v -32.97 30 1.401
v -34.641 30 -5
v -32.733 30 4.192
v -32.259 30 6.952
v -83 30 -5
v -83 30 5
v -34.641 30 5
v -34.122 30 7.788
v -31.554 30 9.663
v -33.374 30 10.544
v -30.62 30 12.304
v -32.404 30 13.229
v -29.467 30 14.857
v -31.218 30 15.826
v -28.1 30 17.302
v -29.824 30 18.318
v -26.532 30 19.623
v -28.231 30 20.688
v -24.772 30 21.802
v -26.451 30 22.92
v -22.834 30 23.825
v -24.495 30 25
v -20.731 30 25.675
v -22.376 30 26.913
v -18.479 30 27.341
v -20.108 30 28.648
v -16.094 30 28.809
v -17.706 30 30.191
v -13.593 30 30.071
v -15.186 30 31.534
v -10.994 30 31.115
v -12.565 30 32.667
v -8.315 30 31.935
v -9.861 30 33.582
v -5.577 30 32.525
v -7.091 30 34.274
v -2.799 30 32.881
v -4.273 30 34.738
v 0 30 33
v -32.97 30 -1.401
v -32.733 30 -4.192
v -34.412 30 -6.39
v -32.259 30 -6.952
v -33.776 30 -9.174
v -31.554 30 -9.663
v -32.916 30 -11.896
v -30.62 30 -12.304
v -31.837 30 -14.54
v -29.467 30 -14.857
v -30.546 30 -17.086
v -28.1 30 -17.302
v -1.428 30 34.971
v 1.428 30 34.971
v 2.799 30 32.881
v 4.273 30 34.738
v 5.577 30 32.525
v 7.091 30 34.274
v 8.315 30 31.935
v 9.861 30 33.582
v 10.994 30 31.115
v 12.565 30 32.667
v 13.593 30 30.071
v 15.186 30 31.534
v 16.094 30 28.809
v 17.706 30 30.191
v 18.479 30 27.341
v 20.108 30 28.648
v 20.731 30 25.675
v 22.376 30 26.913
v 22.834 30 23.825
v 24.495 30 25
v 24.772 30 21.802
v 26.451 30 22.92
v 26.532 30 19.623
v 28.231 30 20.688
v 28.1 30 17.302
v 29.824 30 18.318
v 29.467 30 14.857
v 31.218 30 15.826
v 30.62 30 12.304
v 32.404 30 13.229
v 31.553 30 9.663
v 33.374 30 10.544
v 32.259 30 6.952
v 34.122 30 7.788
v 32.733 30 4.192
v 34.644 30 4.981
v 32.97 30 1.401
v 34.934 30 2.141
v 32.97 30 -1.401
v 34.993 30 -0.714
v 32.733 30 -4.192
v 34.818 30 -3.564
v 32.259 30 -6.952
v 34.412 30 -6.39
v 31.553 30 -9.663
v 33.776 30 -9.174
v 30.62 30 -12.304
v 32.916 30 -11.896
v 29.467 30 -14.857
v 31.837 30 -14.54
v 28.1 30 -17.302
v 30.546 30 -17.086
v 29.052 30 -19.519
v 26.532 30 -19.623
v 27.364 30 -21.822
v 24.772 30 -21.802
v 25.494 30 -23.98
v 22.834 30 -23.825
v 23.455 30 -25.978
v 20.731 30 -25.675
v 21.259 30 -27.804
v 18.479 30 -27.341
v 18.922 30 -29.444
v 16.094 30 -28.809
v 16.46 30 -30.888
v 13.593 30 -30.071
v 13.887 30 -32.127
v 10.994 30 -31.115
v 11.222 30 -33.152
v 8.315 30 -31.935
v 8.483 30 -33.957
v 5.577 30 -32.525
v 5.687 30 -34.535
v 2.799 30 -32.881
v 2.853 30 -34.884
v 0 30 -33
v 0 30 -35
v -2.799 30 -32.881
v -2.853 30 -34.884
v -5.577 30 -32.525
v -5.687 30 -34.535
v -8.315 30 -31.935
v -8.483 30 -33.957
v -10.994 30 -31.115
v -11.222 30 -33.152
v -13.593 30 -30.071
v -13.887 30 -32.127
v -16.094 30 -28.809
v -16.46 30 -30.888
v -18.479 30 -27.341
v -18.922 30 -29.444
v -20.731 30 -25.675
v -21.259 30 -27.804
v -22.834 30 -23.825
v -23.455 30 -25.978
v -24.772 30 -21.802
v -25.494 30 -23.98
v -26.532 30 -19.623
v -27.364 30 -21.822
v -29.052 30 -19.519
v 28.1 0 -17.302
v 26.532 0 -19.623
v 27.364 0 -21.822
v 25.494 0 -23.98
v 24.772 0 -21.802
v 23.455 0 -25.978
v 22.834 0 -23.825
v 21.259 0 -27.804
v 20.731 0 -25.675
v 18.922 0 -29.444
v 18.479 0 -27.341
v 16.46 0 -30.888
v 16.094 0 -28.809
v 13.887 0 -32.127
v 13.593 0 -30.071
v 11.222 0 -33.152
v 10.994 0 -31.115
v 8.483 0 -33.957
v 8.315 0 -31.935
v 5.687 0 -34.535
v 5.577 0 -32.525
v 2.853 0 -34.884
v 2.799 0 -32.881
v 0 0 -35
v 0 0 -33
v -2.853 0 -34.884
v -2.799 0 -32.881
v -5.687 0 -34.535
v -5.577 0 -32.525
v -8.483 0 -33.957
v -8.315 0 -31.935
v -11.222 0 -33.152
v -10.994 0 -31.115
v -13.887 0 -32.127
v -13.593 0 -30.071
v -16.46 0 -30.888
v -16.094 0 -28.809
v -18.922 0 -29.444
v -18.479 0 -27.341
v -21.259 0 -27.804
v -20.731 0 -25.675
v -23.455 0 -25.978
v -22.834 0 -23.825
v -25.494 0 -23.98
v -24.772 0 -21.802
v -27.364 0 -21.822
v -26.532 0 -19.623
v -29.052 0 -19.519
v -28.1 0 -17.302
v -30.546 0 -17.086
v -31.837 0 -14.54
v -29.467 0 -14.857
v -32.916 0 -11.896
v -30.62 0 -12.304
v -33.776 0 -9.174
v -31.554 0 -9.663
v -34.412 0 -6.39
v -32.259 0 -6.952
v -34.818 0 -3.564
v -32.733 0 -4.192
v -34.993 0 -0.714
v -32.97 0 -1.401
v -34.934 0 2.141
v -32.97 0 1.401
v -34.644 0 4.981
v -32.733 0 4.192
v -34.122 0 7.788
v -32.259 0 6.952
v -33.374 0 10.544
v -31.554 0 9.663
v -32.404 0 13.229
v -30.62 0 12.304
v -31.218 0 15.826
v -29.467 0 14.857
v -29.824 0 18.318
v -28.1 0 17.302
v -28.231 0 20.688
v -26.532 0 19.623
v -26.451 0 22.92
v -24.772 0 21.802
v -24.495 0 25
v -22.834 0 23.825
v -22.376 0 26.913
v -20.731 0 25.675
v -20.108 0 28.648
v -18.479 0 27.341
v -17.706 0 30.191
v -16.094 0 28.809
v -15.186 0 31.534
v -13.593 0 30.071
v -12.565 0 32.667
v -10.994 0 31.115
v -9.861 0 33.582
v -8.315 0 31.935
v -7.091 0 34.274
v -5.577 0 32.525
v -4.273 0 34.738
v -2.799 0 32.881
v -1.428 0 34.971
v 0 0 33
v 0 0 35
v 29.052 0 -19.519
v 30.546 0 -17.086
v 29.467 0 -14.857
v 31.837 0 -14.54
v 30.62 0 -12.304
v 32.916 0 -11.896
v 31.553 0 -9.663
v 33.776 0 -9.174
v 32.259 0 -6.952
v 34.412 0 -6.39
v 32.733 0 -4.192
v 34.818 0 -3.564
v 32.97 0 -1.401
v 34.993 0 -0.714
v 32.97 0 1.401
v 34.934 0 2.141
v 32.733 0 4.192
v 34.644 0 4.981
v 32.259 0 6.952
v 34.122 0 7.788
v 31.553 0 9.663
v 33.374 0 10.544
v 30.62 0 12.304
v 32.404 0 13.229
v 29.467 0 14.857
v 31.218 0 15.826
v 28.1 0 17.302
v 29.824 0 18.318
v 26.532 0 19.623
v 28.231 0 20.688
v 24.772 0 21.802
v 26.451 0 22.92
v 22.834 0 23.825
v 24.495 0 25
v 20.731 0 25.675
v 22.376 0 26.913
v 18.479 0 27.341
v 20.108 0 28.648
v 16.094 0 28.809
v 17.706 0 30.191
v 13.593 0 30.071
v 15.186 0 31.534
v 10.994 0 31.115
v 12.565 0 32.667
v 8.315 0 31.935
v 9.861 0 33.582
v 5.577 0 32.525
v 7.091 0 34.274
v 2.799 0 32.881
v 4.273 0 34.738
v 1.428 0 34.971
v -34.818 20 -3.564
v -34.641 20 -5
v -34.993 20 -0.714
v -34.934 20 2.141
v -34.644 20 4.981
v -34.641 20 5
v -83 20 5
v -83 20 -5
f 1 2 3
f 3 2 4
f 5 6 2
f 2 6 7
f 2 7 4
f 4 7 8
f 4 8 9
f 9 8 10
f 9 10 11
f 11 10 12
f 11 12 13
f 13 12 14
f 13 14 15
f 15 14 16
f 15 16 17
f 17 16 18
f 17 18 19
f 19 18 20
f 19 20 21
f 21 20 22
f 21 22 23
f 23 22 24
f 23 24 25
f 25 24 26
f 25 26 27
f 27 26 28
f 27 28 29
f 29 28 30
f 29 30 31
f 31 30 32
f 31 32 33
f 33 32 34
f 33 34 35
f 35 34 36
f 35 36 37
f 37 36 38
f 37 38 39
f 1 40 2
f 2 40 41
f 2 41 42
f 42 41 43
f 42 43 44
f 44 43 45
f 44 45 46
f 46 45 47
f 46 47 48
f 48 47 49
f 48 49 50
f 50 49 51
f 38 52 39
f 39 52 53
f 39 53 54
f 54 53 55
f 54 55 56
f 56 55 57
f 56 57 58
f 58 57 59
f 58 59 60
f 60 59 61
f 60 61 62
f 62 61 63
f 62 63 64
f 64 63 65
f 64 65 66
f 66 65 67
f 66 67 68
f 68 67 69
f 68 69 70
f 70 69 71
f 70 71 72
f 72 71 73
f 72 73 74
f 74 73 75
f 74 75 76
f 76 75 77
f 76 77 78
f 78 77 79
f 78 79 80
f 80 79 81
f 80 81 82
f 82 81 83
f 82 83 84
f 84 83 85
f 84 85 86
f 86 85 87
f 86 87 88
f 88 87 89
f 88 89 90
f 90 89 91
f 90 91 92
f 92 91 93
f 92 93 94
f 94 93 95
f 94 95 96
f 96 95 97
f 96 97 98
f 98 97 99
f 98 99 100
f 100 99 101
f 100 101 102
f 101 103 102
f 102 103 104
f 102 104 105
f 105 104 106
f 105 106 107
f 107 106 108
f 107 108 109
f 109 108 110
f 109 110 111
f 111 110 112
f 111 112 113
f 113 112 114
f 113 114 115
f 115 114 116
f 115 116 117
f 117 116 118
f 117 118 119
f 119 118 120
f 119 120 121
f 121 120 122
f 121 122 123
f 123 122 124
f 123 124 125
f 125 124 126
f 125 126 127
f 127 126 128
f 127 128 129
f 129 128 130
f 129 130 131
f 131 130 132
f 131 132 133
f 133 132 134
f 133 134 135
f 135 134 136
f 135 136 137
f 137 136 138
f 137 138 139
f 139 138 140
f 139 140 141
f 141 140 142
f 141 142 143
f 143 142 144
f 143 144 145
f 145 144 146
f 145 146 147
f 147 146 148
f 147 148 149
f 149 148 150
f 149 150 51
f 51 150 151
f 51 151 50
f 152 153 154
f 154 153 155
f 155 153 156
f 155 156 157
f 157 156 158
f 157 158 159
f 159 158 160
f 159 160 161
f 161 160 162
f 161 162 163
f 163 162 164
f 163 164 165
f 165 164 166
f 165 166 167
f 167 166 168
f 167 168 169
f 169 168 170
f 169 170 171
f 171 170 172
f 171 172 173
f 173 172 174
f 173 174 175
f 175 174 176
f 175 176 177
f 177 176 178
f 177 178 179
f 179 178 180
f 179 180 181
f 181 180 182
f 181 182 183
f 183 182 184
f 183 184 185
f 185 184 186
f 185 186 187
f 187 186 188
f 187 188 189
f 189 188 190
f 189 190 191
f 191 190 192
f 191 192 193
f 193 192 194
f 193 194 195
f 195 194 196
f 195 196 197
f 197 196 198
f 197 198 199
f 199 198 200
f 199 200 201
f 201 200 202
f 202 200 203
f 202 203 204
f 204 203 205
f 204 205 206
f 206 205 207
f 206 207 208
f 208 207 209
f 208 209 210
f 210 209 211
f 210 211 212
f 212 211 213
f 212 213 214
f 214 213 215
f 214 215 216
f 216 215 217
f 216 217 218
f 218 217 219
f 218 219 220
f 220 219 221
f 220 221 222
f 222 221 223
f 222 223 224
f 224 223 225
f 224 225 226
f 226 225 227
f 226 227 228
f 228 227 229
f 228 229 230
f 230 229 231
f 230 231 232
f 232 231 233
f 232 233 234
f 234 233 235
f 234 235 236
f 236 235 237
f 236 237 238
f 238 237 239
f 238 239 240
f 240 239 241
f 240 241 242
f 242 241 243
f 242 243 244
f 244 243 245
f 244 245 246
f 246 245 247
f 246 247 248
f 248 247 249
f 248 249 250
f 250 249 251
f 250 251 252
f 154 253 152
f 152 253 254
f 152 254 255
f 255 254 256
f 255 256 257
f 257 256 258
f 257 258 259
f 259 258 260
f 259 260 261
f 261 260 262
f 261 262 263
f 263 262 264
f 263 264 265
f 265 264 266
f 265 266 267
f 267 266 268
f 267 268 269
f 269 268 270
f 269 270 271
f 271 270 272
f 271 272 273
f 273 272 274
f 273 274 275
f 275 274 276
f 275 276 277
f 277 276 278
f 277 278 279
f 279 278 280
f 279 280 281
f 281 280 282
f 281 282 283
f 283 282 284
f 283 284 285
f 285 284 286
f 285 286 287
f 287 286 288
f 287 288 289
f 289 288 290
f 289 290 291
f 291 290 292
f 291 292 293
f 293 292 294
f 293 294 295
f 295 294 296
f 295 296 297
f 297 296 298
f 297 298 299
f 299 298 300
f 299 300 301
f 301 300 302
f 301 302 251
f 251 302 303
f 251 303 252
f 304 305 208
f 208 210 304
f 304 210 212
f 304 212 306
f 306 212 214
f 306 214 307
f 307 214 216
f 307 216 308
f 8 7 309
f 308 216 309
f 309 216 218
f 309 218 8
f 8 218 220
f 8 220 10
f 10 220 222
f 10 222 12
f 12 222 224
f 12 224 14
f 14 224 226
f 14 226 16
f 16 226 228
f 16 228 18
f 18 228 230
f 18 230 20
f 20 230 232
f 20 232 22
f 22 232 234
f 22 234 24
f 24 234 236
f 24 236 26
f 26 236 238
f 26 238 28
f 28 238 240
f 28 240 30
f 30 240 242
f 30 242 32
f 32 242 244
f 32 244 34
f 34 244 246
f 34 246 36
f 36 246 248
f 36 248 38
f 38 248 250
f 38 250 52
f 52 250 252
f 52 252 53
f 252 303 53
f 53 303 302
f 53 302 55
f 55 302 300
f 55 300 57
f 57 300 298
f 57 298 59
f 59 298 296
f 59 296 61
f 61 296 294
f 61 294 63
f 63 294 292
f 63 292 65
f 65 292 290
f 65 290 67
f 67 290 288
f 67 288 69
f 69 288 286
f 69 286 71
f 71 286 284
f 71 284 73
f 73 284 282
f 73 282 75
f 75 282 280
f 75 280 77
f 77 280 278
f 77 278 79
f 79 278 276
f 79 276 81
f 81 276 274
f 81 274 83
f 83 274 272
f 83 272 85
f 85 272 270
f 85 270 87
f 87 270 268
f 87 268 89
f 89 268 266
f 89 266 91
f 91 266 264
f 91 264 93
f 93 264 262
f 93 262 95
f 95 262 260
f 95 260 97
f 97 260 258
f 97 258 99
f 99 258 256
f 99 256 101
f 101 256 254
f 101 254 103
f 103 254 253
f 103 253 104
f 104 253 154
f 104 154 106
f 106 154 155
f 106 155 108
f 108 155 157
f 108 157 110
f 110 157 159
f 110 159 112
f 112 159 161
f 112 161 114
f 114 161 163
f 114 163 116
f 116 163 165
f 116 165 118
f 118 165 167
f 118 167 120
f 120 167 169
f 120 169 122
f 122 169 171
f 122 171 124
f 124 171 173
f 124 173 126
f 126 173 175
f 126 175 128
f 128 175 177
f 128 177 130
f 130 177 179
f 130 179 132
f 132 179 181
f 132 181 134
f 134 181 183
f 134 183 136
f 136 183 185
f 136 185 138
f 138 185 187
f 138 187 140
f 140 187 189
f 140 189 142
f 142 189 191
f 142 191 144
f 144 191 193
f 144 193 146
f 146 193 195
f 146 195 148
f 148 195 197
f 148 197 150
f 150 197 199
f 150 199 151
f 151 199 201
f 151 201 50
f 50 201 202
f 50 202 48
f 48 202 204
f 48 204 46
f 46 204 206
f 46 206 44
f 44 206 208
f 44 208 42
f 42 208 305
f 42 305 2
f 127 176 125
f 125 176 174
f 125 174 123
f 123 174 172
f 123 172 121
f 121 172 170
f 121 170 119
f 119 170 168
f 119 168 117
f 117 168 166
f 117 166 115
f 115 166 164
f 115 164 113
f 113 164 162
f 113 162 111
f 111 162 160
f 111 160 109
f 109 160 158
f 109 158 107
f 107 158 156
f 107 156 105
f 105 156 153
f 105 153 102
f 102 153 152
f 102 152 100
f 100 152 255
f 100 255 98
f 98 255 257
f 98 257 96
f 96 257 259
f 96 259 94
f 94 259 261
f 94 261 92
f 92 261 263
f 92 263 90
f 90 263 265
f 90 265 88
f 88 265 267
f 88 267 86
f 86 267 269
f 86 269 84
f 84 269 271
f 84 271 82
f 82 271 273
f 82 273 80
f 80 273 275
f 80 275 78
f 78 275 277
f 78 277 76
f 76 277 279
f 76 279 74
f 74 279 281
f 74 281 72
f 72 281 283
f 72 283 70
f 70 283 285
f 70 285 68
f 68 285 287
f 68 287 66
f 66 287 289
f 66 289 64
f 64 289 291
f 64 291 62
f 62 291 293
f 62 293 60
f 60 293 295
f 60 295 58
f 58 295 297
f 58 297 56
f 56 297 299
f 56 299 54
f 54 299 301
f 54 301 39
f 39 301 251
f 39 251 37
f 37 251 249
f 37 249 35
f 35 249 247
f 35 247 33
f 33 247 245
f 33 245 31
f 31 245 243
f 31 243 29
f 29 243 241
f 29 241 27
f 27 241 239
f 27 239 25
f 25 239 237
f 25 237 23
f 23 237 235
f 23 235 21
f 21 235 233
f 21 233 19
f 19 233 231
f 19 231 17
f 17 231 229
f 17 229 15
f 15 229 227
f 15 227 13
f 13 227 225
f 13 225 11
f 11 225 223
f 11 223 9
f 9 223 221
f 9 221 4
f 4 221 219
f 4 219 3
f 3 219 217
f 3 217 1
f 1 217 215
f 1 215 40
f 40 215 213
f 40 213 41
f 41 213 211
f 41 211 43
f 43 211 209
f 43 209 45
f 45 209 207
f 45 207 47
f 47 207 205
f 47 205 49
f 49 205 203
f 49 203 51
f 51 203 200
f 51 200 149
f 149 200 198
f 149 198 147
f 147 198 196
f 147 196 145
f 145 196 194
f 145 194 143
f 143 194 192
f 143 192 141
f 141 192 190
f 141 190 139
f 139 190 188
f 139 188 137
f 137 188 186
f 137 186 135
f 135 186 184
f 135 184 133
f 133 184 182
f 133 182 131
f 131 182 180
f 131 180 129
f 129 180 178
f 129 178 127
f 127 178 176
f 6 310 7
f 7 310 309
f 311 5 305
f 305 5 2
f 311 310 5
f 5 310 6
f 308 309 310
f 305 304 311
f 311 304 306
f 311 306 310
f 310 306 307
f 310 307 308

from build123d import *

# Parameters (mm, degrees)
SKETCH1_R           = 35
SKETCH1_R_2         = 33
BOSS_EXTRUDE1_DEPTH = 30
SKETCH2_W           = 50
SKETCH2_H           = 10
BOSS_EXTRUDE2_DEPTH = 10


with BuildPart() as part:
    # Sketch1 → Boss-Extrude1 (new body)
    with BuildSketch(Plane(origin=(0, 0, 0), x_dir=(1, 0, 0), z_dir=(0, 1, 0))):
        with Locations(Location((0, 0, 0), (0, 0, 270))):
            Circle(SKETCH1_R)
        with Locations(Location((0, 0, 0), (0, 0, 270))):
            Circle(SKETCH1_R_2, mode=Mode.SUBTRACT)
    extrude(amount=BOSS_EXTRUDE1_DEPTH)

    # Sketch2 → Boss-Extrude2 (add)
    with BuildSketch(Plane(origin=(0, 30, 0), x_dir=(1, 0, 0), z_dir=(0, 1, 0))):
        with Locations((-58, 0)):
            Rectangle(SKETCH2_W, SKETCH2_H)
    extrude(amount=-BOSS_EXTRUDE2_DEPTH)


solid = part.part
